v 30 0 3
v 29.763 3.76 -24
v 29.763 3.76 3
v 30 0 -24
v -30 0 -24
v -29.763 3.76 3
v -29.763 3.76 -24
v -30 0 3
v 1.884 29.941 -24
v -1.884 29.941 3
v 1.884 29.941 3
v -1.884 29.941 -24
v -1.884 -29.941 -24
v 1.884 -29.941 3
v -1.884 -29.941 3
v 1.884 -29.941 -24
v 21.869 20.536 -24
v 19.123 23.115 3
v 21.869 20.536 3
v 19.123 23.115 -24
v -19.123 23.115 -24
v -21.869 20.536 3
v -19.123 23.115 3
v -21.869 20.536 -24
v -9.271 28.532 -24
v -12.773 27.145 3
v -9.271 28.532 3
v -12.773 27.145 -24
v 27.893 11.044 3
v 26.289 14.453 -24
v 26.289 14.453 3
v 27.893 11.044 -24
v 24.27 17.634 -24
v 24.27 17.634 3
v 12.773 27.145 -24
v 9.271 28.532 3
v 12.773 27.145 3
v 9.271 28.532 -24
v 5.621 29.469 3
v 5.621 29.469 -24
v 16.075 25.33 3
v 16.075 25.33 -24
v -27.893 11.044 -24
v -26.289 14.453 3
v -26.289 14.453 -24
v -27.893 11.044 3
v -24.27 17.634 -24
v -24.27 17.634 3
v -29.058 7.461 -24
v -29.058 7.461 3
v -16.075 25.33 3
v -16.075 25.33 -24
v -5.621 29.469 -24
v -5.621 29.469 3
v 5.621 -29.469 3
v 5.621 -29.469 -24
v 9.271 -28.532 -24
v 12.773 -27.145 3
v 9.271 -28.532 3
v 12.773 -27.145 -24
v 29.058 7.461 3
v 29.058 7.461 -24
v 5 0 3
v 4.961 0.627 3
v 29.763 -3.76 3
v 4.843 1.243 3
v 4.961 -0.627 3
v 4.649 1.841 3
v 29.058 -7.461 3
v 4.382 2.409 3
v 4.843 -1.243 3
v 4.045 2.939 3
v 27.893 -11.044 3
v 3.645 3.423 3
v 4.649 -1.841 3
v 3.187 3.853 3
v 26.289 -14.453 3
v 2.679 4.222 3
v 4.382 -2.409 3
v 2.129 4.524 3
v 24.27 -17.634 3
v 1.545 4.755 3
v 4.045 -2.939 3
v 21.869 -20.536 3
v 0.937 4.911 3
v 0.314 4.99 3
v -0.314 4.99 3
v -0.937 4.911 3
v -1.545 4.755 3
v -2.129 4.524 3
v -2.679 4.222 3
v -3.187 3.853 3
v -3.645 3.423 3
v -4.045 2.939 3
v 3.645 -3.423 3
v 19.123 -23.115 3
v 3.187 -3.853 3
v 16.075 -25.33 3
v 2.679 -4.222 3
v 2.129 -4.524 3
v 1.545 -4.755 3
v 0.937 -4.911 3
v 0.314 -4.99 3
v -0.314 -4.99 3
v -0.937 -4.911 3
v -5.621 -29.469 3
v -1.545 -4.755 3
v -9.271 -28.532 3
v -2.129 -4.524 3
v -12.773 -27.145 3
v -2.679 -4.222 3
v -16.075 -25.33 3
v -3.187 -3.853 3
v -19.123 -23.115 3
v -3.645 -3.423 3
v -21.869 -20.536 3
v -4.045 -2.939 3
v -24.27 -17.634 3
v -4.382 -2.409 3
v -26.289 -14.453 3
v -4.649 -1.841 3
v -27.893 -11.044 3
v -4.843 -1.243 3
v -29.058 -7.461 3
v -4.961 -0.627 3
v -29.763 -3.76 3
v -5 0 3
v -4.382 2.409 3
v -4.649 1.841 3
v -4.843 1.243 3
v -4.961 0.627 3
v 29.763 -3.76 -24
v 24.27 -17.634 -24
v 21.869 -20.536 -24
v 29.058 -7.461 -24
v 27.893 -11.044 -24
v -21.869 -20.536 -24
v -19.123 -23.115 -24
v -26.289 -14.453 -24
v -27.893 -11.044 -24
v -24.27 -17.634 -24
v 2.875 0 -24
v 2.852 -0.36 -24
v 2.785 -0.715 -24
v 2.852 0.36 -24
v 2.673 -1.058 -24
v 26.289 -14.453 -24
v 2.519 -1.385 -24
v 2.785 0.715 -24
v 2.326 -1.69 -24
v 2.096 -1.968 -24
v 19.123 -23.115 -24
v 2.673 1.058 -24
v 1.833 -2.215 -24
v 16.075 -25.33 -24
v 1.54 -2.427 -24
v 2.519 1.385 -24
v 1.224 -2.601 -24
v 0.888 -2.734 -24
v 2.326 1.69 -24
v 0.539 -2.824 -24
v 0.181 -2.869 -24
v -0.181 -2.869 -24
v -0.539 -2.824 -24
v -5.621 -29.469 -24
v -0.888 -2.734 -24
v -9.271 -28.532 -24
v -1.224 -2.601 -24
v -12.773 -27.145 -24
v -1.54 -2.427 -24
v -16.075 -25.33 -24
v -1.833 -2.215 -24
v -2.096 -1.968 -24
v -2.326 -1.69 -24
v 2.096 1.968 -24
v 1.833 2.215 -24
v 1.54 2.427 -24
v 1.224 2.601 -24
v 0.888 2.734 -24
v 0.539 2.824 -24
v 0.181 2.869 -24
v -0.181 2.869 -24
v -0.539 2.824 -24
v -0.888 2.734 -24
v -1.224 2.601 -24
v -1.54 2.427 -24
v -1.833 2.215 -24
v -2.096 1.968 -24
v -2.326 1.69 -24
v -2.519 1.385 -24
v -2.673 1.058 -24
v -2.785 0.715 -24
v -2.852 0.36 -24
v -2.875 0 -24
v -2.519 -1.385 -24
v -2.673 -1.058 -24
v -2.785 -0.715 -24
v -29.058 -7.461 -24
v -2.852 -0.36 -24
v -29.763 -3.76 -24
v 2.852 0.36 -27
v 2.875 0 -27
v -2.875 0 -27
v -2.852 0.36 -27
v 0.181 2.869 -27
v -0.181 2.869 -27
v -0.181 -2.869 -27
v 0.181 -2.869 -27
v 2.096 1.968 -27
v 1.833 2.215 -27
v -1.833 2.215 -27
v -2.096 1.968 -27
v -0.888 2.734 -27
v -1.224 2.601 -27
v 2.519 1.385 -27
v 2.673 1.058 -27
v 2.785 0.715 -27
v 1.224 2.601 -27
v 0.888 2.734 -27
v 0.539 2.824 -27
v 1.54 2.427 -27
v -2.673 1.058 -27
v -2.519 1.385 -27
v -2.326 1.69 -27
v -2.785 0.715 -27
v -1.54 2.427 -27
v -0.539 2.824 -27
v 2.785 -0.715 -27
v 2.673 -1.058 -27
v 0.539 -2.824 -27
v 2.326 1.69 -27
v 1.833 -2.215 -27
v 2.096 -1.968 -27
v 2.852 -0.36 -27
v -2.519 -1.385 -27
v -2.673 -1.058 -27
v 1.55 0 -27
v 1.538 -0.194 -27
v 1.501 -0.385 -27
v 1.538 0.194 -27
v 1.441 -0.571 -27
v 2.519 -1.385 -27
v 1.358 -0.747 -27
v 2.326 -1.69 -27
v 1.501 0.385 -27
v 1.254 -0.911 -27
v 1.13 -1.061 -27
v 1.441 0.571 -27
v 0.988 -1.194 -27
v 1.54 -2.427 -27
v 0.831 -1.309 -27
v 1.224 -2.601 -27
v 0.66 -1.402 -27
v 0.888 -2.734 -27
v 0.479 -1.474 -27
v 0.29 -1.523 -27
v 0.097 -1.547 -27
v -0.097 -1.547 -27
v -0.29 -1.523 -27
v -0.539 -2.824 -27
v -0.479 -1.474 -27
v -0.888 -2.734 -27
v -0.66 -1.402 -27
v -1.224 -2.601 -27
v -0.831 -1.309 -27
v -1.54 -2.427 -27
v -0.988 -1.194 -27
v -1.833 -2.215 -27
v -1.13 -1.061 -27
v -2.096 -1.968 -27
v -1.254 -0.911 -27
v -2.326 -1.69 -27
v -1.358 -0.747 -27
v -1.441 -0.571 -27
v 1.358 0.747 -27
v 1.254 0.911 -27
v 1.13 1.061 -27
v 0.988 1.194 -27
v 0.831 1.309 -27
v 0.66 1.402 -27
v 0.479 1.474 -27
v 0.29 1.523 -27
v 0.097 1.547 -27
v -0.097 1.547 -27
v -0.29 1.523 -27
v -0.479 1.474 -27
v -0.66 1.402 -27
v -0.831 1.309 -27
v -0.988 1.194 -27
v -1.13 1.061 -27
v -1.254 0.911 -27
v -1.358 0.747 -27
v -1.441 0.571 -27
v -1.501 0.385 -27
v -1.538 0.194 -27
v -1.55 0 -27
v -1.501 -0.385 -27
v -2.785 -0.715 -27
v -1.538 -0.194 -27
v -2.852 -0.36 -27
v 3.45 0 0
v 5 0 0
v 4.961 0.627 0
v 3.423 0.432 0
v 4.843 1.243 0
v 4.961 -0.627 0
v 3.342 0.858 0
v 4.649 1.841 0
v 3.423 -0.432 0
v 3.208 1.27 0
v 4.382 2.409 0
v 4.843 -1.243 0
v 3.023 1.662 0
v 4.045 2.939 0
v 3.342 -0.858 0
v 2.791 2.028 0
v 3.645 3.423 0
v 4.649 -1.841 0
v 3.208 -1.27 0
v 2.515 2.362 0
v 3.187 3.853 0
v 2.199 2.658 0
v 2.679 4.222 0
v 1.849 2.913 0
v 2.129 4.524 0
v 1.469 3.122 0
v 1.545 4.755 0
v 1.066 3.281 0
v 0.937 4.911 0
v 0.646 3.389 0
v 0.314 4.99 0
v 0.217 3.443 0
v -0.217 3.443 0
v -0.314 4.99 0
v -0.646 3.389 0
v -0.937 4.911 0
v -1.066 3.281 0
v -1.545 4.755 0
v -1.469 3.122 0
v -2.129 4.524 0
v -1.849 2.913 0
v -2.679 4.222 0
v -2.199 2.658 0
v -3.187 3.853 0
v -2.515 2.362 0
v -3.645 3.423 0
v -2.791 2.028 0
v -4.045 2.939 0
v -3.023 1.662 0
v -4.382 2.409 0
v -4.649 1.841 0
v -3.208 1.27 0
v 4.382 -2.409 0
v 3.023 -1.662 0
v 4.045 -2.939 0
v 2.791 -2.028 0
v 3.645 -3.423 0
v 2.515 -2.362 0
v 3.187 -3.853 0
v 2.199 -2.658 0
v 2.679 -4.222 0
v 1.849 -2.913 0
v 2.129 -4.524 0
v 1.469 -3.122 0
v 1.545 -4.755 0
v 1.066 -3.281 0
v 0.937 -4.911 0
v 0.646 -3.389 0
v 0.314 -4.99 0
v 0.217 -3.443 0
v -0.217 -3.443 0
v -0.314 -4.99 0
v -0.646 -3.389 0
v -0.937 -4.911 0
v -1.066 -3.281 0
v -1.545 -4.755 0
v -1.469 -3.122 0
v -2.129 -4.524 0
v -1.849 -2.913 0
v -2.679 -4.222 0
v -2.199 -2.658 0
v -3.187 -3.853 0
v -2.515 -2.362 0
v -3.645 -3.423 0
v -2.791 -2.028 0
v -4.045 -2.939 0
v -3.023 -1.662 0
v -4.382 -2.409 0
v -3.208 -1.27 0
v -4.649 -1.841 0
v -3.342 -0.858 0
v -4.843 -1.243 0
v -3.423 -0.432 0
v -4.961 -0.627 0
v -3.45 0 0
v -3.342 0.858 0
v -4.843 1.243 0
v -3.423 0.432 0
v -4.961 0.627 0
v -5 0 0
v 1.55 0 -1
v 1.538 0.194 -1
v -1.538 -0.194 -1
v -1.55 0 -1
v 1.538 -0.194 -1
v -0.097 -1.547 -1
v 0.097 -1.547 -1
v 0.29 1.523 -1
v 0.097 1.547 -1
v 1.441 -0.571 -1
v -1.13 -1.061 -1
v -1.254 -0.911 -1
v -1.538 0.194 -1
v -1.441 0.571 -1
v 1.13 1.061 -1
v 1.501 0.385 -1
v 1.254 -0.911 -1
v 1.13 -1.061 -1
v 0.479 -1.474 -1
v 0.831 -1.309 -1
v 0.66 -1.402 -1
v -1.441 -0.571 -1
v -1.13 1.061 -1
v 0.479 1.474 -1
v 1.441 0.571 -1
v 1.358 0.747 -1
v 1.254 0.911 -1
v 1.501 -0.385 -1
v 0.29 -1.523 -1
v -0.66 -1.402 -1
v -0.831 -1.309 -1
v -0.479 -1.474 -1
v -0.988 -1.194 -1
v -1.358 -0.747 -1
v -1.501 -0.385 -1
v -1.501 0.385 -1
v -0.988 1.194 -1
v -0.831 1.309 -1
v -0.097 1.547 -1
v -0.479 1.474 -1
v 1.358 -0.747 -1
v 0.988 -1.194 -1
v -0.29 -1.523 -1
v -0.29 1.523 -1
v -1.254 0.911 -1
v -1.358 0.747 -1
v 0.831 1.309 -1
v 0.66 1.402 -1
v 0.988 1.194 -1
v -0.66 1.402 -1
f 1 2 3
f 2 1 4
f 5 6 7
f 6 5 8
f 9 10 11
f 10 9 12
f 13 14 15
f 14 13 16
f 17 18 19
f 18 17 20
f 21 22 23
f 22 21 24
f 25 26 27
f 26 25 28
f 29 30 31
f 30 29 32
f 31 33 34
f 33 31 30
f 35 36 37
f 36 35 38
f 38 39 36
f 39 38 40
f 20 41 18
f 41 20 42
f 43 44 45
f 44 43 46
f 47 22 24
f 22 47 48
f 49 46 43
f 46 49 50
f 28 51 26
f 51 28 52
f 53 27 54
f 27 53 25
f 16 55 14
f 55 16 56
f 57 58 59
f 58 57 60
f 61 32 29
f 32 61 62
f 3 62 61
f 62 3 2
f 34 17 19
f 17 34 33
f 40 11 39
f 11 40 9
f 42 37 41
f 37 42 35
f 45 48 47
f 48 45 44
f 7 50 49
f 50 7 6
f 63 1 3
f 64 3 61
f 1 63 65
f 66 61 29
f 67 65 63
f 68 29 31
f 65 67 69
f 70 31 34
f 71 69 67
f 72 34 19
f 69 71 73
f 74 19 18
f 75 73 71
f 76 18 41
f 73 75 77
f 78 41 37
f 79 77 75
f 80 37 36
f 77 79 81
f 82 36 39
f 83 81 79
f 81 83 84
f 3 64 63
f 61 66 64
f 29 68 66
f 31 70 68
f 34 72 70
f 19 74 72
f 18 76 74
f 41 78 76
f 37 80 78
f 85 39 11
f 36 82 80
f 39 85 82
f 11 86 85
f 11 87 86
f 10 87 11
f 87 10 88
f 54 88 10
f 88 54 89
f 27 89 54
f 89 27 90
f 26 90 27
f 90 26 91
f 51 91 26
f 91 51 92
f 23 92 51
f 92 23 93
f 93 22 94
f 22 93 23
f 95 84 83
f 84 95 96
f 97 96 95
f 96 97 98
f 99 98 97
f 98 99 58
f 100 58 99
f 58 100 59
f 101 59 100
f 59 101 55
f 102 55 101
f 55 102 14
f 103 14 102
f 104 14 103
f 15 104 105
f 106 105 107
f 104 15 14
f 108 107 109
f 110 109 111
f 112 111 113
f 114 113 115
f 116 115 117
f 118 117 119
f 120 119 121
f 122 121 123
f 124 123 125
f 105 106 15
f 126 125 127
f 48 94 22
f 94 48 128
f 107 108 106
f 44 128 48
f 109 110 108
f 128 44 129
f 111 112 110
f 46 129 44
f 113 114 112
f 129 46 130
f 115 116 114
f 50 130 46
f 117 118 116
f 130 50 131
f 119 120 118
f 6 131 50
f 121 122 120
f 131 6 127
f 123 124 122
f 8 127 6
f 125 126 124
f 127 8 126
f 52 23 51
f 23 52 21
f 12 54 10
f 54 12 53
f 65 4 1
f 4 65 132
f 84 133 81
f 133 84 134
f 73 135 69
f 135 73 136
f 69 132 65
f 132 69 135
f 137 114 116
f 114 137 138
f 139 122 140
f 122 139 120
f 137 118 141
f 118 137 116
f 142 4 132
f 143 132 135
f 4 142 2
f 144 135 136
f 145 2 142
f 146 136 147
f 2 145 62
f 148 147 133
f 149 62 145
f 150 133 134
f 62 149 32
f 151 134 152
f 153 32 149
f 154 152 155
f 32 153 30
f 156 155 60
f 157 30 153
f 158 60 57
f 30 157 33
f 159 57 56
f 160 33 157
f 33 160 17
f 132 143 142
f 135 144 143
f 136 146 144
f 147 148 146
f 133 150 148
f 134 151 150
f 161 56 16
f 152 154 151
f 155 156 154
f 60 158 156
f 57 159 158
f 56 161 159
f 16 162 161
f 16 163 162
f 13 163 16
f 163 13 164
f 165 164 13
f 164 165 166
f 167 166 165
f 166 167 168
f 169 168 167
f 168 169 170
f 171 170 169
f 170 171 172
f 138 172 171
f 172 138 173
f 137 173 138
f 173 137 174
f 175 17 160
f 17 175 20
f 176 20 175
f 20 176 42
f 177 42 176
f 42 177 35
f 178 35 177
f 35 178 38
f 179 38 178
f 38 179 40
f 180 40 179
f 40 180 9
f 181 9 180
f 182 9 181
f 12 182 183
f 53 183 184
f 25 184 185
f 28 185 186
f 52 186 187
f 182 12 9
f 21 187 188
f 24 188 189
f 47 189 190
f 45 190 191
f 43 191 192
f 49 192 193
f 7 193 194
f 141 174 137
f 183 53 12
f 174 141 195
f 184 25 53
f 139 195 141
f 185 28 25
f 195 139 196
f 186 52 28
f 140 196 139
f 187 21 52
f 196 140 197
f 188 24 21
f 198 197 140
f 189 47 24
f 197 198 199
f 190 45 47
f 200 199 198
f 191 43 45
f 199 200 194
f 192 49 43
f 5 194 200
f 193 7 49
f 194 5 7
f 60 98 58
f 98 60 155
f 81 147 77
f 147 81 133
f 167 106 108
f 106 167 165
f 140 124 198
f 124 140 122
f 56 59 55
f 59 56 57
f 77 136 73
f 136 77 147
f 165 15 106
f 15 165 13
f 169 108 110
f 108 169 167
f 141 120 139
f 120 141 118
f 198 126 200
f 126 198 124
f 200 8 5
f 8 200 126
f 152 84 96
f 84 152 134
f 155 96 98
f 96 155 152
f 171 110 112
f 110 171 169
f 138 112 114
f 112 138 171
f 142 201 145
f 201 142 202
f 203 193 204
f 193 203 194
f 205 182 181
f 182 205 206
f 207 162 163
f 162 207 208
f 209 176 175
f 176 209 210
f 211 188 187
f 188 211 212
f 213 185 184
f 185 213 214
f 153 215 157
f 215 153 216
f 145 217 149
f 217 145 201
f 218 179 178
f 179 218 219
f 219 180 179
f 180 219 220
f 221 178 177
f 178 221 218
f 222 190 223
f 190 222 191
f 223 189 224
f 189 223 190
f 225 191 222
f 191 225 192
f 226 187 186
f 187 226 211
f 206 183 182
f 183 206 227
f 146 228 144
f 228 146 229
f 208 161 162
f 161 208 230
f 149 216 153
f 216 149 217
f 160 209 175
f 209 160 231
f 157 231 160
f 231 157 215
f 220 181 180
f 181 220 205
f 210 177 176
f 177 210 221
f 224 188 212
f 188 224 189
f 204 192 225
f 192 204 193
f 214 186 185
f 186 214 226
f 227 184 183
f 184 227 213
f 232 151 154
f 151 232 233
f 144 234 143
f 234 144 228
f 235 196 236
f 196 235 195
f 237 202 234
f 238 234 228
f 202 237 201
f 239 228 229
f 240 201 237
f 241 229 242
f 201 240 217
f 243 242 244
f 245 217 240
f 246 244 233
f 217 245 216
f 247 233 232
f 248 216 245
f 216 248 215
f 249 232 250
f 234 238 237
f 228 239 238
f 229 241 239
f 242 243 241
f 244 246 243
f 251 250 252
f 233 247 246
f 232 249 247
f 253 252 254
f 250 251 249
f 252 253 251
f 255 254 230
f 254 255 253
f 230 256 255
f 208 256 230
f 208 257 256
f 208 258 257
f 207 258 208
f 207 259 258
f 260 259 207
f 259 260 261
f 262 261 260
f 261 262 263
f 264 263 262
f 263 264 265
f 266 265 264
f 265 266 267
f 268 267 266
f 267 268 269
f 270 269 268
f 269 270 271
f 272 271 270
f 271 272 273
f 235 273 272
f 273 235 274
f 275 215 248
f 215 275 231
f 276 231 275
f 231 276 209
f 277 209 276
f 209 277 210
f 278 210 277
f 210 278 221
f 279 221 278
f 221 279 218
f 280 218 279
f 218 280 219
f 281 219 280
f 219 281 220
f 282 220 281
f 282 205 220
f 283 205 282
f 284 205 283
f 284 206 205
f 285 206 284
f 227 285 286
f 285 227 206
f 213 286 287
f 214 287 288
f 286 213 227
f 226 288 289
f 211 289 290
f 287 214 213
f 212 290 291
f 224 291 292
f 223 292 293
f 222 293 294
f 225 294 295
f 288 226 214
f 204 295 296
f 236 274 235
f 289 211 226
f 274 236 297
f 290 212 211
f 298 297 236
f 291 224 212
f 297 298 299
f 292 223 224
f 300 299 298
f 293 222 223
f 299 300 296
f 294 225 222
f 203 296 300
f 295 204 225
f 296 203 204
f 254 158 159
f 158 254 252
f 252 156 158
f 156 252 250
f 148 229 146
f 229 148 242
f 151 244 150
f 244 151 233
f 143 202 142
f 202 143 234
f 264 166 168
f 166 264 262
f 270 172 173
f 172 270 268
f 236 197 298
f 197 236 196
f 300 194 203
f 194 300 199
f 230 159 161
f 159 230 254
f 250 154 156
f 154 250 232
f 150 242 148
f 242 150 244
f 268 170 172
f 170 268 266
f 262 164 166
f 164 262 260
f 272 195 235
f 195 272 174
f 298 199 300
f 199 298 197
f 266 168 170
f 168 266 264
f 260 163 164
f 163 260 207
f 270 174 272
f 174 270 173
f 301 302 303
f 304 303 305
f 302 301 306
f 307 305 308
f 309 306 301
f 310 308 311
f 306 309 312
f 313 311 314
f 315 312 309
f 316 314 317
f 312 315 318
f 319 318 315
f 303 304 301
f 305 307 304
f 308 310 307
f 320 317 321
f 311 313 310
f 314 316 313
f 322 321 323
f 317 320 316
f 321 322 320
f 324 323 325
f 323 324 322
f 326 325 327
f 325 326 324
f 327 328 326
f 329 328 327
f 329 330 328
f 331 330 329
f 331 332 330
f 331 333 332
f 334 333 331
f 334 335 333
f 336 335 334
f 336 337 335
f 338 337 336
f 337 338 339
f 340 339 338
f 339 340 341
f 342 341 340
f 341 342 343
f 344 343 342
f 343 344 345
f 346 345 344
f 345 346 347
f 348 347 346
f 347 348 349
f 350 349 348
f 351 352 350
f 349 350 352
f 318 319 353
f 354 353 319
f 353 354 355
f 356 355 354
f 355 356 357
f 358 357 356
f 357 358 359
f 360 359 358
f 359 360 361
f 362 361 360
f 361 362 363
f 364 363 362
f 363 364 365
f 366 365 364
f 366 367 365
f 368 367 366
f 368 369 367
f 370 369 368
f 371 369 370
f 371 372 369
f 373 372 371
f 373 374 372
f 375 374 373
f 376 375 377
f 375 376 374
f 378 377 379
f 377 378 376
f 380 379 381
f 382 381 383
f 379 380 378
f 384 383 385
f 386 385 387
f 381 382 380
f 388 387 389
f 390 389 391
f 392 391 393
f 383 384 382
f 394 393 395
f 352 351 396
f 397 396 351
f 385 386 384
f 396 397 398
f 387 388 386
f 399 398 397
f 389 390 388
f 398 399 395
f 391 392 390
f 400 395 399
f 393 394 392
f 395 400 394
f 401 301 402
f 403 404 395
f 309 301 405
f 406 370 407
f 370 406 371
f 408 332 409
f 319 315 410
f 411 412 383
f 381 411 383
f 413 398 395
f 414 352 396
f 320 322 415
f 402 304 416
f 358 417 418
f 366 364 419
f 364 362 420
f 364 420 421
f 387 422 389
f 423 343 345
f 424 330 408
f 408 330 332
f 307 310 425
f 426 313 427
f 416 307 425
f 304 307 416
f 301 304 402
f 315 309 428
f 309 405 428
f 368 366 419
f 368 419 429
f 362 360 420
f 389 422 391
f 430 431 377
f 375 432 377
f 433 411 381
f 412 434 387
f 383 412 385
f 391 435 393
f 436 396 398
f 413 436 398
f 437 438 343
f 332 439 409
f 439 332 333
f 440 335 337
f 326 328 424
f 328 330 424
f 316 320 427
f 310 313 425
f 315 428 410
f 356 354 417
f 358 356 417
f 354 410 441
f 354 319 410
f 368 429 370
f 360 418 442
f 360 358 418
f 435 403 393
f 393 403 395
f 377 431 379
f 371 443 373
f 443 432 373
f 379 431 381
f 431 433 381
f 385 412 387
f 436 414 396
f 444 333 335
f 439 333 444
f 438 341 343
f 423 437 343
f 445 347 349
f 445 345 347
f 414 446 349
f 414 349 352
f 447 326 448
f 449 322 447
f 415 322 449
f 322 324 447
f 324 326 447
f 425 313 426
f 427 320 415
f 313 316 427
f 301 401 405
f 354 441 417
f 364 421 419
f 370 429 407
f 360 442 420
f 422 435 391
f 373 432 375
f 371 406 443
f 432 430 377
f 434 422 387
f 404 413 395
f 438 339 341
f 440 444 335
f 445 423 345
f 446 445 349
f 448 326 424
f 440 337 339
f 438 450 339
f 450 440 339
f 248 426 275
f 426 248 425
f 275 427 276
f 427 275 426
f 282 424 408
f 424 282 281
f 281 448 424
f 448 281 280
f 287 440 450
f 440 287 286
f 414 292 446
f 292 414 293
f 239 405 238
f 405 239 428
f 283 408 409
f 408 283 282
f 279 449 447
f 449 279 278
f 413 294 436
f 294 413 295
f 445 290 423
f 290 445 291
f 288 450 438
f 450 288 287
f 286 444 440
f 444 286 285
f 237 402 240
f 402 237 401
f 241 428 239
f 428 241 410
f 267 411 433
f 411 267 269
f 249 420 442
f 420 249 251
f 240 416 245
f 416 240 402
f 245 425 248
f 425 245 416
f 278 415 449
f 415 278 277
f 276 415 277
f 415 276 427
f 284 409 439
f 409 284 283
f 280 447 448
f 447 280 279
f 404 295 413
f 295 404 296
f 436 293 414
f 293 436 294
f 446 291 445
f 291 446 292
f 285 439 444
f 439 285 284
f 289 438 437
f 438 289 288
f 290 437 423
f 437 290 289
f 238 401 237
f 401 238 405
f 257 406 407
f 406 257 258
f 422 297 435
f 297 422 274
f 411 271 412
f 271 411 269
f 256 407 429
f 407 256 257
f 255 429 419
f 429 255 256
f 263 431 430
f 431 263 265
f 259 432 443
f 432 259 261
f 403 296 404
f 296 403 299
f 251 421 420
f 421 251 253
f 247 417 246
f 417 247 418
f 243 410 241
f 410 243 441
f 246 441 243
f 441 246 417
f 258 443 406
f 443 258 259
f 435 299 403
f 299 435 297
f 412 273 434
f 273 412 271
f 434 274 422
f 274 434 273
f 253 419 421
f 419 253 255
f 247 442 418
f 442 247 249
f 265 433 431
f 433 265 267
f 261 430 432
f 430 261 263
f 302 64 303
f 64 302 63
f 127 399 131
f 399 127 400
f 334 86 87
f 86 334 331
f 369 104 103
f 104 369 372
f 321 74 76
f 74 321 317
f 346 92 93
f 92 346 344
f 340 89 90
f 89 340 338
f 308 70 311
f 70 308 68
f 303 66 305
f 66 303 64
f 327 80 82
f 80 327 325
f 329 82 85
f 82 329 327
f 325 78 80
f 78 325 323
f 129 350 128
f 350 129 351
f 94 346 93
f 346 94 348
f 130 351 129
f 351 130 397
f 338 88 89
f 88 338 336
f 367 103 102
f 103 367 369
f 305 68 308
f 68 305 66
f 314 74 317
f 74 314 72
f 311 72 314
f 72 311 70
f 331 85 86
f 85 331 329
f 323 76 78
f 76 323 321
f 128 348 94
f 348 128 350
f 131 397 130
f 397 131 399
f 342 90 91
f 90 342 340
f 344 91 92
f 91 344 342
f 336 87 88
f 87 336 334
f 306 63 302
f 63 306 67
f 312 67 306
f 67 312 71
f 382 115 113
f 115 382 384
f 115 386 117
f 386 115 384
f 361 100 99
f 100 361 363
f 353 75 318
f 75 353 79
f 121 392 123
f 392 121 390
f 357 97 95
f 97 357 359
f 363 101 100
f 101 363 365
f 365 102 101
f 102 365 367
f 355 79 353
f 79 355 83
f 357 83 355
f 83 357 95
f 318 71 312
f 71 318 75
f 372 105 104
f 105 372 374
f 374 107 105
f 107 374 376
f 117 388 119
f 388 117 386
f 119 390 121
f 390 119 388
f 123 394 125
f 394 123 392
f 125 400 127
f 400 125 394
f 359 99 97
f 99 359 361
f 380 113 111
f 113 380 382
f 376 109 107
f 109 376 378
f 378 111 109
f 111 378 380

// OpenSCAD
$fn = 50;


difference() {
	union() {
		translate(v = [0, 0, -24.0000000000]) {
			cylinder(h = 27, r = 30.0000000000);
		}
		#translate(v = [0, 0, -27.0000000000]) {
			cylinder(h = 27, r = 2.8750000000);
		}
	}
	union() {
		translate(v = [0, 0, 0]) {
			rotate(a = [0, 0, 0]) {
				difference() {
					union() {
						translate(v = [0, 0, -27.0000000000]) {
							cylinder(h = 27, r = 1.2500000000);
						}
						translate(v = [0, 0, -1.0000000000]) {
							cylinder(h = 1.0000000000, r1 = 1.5500000000, r2 = 3.4500000000);
						}
						translate(v = [0, 0, -27.0000000000]) {
							cylinder(h = 27, r = 1.5500000000);
						}
						translate(v = [0, 0, -27.0000000000]) {
							cylinder(h = 27, r = 1.2500000000);
						}
					}
					union();
				}
			}
		}
		#cylinder(h = 3, r = 5.0000000000);
	}
}
